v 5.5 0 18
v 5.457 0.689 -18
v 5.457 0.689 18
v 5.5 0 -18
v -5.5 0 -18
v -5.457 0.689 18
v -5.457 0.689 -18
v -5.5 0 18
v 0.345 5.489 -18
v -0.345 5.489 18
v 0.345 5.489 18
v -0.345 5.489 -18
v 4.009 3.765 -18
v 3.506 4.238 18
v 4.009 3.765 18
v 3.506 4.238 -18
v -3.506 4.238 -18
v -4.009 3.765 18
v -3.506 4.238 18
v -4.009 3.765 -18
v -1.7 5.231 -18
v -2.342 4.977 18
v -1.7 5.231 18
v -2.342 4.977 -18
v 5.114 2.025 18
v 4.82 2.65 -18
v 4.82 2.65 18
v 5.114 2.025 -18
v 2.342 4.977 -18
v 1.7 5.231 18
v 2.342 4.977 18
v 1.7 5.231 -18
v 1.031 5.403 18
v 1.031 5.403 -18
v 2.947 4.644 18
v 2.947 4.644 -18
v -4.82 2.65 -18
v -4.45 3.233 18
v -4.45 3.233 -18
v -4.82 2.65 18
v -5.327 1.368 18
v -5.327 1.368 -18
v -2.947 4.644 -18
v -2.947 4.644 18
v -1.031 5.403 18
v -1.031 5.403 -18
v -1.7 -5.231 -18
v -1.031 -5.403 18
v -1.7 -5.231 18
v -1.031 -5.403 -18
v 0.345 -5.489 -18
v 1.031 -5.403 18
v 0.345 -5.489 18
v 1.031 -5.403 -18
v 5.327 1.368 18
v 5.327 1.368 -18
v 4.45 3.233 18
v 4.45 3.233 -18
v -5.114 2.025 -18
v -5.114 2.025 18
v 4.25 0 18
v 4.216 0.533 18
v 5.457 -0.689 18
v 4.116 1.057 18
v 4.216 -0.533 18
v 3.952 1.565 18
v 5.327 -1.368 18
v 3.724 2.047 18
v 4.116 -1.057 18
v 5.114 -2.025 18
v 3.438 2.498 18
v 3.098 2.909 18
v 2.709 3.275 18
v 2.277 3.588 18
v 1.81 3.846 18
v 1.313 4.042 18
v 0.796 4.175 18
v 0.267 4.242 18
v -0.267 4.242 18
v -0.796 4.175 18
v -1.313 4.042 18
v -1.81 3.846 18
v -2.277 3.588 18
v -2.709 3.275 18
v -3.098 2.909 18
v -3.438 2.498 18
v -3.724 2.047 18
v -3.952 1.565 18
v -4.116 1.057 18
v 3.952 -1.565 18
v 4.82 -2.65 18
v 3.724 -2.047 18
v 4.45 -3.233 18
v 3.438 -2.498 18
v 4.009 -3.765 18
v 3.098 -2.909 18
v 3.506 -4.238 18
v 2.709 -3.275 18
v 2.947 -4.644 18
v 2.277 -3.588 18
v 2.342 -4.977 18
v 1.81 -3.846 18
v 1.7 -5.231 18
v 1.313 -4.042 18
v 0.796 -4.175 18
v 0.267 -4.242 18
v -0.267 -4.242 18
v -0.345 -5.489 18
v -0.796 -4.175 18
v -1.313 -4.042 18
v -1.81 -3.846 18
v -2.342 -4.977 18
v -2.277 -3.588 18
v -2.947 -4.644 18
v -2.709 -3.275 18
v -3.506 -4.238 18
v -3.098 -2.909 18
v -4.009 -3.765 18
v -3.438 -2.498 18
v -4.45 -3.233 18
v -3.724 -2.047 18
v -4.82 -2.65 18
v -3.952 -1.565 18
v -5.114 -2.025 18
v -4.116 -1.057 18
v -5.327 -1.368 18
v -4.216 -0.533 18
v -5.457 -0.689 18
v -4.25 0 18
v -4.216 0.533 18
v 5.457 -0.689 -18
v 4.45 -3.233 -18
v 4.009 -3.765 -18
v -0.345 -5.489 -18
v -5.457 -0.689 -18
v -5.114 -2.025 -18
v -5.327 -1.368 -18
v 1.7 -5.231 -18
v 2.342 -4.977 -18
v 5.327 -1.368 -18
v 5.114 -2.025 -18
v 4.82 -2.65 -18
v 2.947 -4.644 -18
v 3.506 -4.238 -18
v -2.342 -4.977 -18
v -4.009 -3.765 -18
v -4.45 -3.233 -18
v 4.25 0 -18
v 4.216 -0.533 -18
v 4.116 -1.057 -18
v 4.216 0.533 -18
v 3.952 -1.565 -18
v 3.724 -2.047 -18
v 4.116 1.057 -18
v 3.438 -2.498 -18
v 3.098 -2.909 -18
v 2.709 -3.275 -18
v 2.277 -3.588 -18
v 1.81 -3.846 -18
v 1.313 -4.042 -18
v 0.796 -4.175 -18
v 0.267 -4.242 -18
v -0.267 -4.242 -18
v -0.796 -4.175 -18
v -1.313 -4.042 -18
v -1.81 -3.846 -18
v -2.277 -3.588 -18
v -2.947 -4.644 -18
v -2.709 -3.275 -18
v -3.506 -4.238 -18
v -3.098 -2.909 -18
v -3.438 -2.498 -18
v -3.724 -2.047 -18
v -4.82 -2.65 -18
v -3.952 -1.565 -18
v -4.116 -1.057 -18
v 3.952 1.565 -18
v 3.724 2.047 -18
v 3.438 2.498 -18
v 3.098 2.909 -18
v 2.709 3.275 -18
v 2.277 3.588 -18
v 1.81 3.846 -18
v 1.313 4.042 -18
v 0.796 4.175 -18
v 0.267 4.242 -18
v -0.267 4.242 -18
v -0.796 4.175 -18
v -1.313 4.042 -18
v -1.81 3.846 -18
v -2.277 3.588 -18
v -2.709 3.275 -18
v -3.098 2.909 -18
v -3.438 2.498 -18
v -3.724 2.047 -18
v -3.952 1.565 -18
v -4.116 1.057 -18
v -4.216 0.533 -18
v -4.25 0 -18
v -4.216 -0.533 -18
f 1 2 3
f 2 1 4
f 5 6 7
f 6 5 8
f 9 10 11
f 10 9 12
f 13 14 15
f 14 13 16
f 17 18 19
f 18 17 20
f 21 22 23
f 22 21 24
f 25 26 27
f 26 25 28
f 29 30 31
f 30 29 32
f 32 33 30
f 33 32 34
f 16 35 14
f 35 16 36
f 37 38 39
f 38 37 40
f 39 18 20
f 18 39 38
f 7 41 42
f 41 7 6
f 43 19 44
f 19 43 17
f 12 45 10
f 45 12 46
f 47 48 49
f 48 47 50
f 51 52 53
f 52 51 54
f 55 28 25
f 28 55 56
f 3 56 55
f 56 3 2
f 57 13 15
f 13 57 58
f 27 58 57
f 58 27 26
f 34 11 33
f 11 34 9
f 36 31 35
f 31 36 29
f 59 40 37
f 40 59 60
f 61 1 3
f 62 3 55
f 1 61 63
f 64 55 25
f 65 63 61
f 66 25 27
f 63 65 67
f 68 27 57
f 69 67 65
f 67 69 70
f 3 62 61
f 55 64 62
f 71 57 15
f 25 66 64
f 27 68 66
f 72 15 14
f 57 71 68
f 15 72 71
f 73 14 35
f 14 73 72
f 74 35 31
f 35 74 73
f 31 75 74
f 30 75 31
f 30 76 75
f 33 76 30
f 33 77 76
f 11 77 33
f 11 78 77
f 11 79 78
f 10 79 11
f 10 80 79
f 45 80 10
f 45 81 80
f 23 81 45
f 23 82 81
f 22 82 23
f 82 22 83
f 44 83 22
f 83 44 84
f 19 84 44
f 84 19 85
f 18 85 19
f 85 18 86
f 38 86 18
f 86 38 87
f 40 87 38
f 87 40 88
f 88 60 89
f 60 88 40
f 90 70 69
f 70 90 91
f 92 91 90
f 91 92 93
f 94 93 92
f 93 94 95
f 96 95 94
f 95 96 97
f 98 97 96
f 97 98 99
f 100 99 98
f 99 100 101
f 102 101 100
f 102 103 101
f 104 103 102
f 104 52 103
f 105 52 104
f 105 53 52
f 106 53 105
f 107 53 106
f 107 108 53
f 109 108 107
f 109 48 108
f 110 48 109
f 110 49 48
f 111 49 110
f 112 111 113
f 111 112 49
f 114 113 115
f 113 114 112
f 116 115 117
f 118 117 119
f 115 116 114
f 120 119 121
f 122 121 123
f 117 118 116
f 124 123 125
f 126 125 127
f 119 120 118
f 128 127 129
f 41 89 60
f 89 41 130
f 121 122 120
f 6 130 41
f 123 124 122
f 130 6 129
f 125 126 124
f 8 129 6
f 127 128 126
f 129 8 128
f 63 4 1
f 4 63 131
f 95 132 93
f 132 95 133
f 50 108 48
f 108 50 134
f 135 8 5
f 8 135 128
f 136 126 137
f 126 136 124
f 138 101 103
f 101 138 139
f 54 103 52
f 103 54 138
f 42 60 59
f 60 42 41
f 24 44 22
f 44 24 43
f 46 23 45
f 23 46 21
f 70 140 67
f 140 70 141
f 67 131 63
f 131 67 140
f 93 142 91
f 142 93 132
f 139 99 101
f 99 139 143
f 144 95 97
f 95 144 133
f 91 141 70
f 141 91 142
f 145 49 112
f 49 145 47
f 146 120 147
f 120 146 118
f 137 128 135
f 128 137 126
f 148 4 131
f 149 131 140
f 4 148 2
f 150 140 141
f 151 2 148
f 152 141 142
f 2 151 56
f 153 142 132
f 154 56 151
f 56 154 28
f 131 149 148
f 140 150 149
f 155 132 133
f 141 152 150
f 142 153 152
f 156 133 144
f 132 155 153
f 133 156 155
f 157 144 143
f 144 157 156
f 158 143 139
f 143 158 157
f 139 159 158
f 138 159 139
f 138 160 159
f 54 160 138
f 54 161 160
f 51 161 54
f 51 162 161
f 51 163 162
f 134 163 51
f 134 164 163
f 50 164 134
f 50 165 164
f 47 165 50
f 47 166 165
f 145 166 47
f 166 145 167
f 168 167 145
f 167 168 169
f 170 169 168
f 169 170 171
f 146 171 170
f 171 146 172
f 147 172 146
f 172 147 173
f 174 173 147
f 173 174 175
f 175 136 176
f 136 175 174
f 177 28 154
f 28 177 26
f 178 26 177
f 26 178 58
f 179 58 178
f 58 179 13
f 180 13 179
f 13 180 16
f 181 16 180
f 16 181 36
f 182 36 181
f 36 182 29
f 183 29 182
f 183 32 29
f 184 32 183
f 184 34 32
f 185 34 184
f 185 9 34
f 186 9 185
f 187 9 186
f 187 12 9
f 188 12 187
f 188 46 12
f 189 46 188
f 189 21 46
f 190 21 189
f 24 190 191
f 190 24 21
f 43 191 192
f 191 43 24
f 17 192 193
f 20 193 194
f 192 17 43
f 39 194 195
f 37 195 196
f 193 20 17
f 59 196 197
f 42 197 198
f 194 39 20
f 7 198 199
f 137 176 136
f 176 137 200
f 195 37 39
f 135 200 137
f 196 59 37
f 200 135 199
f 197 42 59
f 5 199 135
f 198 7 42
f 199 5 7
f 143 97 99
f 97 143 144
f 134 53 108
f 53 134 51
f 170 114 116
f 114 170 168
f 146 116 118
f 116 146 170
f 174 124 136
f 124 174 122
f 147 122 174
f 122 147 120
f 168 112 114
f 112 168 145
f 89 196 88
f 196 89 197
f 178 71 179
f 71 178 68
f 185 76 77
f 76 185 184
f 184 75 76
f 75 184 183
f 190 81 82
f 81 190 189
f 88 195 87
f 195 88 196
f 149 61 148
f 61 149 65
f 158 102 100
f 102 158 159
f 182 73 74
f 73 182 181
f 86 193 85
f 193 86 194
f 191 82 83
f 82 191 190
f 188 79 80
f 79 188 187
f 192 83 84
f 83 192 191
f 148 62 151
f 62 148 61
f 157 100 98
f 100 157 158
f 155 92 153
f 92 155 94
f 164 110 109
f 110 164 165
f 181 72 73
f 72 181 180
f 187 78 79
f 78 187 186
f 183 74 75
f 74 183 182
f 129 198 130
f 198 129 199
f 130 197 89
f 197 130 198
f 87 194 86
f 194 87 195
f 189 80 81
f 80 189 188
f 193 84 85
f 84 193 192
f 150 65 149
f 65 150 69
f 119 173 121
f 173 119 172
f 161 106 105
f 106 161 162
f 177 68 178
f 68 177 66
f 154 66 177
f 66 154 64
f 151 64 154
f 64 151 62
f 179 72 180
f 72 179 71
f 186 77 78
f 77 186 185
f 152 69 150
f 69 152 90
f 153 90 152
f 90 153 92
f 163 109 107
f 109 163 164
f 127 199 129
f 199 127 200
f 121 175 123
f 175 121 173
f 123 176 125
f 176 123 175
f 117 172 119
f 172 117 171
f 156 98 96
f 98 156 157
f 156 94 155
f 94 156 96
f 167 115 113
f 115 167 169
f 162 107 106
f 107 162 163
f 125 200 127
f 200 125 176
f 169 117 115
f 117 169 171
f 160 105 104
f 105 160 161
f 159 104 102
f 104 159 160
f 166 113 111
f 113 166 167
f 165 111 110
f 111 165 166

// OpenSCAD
$fn = 50;


difference() {
	union() {
		translate(v = [0, 0, -18.0000000000]) {
			cylinder(h = 36, r = 5.5000000000);
		}
	}
	union() {
		translate(v = [0, 0, -100.0000000000]) {
			cylinder(h = 200, r = 4.2500000000);
		}
	}
}
